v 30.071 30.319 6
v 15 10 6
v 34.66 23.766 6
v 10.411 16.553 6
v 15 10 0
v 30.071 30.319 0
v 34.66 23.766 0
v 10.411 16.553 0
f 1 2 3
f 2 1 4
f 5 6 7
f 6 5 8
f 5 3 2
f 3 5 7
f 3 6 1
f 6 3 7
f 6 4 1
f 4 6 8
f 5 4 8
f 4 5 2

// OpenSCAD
translate([15, 10, 0])
  rotate([0, 0, 35])
    cube([24, 8, 6]);
